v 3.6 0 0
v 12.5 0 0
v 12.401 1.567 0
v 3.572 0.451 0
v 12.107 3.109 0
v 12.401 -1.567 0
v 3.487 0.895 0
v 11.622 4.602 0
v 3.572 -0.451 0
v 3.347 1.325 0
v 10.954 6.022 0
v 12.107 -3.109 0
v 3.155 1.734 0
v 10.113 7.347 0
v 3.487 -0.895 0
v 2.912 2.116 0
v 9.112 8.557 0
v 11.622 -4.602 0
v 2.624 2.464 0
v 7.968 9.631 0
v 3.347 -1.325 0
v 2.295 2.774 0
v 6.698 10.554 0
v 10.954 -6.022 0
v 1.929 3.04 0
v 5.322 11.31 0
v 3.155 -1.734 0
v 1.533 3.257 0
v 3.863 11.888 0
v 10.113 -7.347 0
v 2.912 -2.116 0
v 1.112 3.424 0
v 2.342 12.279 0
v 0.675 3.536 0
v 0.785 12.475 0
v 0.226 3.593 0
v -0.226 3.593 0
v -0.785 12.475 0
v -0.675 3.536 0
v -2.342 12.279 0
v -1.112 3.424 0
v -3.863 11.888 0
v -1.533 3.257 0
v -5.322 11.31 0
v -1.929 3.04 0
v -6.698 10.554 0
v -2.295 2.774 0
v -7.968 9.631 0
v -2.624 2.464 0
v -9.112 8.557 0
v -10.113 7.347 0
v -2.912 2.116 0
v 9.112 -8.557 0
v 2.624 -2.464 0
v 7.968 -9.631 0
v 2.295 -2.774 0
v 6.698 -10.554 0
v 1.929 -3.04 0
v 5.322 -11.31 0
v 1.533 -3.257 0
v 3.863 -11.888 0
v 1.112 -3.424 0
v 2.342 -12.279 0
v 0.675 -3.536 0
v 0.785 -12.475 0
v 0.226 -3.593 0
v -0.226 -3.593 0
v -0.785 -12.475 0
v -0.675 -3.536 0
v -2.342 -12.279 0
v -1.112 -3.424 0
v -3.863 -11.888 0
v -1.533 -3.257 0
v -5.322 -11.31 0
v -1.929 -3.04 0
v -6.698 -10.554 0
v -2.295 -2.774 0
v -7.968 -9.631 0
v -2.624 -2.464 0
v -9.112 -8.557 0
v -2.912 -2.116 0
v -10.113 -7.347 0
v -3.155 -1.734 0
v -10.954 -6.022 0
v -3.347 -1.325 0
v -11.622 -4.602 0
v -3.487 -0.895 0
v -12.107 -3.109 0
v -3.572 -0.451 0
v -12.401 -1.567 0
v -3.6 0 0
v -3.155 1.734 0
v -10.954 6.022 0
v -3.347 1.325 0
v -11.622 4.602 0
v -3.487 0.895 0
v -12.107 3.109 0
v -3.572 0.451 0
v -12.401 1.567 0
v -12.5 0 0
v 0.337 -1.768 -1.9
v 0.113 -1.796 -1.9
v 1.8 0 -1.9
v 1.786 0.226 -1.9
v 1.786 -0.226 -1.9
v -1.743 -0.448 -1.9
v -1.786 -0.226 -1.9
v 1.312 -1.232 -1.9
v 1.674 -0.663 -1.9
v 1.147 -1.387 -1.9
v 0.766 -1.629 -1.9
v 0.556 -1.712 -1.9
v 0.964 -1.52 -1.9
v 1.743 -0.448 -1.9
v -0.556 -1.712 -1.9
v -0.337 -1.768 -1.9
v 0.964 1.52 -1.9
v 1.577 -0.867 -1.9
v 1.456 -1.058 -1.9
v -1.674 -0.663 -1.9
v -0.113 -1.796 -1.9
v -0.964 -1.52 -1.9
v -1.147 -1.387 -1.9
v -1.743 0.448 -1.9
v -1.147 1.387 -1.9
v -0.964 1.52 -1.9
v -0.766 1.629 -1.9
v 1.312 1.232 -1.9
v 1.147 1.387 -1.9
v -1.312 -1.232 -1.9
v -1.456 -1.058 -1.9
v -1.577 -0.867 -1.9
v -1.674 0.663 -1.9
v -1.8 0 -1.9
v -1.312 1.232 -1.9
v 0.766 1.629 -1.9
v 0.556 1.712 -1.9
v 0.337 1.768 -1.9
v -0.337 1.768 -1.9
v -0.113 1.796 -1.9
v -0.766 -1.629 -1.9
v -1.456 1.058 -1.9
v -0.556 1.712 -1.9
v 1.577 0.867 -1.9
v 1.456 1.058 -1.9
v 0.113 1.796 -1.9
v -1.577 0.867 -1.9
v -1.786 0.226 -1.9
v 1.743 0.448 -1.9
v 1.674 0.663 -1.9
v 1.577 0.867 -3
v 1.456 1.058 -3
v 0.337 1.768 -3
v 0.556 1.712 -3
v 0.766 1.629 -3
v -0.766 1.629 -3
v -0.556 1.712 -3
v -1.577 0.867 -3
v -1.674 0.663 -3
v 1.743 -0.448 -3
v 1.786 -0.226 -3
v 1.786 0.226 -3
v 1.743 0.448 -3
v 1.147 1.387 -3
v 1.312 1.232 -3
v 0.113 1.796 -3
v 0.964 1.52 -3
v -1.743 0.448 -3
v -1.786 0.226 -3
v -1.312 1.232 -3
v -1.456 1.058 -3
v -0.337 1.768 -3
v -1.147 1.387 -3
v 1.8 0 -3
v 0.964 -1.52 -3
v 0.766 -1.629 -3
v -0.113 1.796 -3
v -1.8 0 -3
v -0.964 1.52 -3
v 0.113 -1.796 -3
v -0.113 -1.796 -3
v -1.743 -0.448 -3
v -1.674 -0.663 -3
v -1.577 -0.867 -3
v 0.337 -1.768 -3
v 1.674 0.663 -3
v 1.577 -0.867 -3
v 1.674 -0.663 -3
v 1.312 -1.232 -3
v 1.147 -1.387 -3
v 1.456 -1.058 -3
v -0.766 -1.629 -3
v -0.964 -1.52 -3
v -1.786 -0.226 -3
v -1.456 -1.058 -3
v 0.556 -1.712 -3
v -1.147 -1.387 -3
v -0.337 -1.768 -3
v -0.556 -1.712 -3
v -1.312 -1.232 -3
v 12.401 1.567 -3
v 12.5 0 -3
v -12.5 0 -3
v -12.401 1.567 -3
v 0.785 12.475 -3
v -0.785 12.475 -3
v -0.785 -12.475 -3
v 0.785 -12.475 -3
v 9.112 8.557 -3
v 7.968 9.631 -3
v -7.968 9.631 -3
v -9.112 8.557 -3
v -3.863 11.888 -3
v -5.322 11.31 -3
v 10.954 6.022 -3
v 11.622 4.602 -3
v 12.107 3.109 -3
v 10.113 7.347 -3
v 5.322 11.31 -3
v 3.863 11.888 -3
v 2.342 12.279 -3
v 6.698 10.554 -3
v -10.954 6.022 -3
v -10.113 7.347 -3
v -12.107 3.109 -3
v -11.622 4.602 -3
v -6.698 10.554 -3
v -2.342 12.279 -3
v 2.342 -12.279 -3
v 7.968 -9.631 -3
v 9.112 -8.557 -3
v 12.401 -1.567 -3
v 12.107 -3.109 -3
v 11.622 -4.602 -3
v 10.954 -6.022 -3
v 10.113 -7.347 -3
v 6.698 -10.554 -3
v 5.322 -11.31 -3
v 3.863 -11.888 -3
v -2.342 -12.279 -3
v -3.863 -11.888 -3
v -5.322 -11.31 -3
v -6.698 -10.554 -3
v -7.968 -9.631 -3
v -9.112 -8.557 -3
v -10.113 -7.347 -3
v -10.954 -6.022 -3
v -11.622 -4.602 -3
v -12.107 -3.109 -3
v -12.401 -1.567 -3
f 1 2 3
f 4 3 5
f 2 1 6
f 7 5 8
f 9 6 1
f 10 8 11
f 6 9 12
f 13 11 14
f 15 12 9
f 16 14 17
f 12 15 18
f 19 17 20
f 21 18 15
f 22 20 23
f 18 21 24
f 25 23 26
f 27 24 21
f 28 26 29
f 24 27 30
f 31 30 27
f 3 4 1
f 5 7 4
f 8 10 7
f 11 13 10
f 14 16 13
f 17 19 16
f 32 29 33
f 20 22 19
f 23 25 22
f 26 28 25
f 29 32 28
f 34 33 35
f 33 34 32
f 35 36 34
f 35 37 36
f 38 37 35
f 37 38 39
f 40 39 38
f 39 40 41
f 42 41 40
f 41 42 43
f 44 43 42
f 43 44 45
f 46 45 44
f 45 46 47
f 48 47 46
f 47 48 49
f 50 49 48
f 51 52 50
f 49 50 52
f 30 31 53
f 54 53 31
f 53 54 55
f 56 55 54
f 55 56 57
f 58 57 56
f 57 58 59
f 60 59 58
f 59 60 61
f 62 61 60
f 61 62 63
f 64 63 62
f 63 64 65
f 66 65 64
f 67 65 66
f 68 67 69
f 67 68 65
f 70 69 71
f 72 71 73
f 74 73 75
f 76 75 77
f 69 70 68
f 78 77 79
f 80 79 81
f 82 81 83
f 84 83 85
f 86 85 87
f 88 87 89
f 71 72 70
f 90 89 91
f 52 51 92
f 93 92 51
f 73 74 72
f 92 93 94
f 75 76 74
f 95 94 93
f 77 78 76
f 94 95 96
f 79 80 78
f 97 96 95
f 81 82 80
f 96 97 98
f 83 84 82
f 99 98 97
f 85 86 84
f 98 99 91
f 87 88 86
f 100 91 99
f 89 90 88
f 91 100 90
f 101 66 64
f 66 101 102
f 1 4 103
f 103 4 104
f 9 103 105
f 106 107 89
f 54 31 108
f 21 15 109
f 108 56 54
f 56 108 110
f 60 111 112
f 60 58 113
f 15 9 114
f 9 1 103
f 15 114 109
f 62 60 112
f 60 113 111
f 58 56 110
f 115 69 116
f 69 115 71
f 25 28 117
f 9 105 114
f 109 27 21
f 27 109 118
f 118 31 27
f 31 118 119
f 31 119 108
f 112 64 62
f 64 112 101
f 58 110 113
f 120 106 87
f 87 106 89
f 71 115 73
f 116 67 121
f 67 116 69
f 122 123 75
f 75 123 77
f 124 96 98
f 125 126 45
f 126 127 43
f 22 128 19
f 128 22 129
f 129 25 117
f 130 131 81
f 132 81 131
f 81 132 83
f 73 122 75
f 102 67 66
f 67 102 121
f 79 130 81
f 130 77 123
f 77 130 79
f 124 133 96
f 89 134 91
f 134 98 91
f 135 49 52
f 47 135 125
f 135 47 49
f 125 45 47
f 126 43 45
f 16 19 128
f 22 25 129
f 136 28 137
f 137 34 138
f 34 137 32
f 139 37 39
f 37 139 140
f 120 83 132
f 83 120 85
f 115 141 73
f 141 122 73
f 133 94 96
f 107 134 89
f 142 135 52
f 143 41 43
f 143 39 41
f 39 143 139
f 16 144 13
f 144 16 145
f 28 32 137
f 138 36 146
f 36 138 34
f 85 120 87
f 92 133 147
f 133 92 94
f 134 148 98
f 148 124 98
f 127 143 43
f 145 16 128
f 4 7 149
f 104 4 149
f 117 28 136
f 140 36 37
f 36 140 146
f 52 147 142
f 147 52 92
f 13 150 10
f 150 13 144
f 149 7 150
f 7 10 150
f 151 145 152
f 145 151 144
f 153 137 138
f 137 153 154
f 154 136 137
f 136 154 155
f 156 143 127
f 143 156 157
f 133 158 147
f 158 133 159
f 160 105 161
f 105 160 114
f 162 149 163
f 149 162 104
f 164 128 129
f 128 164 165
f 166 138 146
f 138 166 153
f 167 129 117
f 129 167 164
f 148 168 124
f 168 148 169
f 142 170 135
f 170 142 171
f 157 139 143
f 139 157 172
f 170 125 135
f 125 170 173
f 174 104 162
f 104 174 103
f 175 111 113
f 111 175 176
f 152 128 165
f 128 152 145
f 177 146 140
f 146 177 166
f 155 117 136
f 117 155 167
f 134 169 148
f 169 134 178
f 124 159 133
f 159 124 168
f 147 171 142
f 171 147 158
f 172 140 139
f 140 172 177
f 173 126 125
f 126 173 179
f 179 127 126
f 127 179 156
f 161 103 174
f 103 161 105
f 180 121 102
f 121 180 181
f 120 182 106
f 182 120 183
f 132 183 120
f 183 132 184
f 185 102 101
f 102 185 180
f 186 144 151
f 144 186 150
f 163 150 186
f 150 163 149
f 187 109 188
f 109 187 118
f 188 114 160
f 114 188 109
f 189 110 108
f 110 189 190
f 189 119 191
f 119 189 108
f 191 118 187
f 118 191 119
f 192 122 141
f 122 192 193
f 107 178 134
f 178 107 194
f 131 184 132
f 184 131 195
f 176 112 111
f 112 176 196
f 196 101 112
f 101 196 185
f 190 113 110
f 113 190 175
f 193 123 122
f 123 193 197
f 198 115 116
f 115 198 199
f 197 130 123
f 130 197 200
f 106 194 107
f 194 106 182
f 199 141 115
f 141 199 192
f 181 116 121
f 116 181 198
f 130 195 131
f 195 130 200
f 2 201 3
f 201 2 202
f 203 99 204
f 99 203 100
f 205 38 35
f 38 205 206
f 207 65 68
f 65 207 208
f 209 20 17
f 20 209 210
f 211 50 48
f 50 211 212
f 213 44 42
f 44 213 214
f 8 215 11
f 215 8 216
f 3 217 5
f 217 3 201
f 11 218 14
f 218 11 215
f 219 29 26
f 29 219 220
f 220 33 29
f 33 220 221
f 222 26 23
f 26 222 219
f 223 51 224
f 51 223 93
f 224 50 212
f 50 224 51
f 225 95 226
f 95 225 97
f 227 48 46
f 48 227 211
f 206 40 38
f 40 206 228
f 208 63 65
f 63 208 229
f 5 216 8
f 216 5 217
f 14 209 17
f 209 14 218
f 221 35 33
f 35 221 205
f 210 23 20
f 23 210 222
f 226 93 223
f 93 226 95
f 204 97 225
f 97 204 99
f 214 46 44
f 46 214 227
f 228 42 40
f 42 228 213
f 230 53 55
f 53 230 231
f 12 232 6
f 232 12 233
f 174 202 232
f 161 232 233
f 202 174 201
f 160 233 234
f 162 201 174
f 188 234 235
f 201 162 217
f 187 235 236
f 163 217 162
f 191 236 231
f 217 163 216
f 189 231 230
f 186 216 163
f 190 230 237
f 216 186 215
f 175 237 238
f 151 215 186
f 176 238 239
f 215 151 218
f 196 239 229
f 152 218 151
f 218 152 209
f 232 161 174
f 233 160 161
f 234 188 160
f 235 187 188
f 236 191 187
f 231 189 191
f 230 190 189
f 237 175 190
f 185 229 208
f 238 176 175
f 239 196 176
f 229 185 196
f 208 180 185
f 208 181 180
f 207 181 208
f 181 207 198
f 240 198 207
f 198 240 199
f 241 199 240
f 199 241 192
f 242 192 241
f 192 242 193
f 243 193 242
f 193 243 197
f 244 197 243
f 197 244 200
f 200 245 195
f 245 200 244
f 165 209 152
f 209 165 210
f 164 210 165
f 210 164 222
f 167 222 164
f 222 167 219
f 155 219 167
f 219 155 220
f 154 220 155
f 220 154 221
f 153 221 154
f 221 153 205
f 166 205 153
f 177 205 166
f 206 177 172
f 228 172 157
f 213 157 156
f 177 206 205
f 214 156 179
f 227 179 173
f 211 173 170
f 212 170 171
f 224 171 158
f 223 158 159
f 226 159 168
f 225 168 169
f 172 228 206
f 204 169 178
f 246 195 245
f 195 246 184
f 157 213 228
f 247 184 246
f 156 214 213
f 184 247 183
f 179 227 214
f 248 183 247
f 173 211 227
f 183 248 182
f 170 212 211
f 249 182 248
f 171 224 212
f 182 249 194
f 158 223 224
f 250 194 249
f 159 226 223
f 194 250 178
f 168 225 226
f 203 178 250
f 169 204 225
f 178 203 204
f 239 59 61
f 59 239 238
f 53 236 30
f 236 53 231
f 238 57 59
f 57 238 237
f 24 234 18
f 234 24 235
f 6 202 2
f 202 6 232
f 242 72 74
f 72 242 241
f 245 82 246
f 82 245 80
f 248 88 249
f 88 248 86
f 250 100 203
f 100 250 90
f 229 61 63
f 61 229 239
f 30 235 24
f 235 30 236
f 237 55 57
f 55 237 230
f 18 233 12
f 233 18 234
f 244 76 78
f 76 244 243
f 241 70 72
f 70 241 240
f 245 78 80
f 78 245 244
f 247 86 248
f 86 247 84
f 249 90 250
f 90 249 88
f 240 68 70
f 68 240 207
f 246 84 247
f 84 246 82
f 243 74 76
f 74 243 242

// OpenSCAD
$fn = 50;

difference() {
	union() {
		translate(v = [0, 0, -3.0]) {
			cylinder(h = 3, r = 12.5);
		}
	}
	union() {
		translate(v = [0, 0, 0]) {
			rotate(a = [0, 0, 0]) {
				difference() {
					union() {
						translate(v = [0, 0, -6.0]) {
							cylinder(h = 6, r = 1.5);
						}
						translate(v = [0, 0, -1.9]) {
							cylinder(h = 1.9, r1 = 1.8, r2 = 3.6);
						}
						translate(v = [0, 0, -6.0]) {
							cylinder(h = 6, r = 1.8);
						}
						translate(v = [0, 0, -6.0]) {
							cylinder(h = 6, r = 1.5);
						}
					}
					union();
				}
			}
		}
	}
}
